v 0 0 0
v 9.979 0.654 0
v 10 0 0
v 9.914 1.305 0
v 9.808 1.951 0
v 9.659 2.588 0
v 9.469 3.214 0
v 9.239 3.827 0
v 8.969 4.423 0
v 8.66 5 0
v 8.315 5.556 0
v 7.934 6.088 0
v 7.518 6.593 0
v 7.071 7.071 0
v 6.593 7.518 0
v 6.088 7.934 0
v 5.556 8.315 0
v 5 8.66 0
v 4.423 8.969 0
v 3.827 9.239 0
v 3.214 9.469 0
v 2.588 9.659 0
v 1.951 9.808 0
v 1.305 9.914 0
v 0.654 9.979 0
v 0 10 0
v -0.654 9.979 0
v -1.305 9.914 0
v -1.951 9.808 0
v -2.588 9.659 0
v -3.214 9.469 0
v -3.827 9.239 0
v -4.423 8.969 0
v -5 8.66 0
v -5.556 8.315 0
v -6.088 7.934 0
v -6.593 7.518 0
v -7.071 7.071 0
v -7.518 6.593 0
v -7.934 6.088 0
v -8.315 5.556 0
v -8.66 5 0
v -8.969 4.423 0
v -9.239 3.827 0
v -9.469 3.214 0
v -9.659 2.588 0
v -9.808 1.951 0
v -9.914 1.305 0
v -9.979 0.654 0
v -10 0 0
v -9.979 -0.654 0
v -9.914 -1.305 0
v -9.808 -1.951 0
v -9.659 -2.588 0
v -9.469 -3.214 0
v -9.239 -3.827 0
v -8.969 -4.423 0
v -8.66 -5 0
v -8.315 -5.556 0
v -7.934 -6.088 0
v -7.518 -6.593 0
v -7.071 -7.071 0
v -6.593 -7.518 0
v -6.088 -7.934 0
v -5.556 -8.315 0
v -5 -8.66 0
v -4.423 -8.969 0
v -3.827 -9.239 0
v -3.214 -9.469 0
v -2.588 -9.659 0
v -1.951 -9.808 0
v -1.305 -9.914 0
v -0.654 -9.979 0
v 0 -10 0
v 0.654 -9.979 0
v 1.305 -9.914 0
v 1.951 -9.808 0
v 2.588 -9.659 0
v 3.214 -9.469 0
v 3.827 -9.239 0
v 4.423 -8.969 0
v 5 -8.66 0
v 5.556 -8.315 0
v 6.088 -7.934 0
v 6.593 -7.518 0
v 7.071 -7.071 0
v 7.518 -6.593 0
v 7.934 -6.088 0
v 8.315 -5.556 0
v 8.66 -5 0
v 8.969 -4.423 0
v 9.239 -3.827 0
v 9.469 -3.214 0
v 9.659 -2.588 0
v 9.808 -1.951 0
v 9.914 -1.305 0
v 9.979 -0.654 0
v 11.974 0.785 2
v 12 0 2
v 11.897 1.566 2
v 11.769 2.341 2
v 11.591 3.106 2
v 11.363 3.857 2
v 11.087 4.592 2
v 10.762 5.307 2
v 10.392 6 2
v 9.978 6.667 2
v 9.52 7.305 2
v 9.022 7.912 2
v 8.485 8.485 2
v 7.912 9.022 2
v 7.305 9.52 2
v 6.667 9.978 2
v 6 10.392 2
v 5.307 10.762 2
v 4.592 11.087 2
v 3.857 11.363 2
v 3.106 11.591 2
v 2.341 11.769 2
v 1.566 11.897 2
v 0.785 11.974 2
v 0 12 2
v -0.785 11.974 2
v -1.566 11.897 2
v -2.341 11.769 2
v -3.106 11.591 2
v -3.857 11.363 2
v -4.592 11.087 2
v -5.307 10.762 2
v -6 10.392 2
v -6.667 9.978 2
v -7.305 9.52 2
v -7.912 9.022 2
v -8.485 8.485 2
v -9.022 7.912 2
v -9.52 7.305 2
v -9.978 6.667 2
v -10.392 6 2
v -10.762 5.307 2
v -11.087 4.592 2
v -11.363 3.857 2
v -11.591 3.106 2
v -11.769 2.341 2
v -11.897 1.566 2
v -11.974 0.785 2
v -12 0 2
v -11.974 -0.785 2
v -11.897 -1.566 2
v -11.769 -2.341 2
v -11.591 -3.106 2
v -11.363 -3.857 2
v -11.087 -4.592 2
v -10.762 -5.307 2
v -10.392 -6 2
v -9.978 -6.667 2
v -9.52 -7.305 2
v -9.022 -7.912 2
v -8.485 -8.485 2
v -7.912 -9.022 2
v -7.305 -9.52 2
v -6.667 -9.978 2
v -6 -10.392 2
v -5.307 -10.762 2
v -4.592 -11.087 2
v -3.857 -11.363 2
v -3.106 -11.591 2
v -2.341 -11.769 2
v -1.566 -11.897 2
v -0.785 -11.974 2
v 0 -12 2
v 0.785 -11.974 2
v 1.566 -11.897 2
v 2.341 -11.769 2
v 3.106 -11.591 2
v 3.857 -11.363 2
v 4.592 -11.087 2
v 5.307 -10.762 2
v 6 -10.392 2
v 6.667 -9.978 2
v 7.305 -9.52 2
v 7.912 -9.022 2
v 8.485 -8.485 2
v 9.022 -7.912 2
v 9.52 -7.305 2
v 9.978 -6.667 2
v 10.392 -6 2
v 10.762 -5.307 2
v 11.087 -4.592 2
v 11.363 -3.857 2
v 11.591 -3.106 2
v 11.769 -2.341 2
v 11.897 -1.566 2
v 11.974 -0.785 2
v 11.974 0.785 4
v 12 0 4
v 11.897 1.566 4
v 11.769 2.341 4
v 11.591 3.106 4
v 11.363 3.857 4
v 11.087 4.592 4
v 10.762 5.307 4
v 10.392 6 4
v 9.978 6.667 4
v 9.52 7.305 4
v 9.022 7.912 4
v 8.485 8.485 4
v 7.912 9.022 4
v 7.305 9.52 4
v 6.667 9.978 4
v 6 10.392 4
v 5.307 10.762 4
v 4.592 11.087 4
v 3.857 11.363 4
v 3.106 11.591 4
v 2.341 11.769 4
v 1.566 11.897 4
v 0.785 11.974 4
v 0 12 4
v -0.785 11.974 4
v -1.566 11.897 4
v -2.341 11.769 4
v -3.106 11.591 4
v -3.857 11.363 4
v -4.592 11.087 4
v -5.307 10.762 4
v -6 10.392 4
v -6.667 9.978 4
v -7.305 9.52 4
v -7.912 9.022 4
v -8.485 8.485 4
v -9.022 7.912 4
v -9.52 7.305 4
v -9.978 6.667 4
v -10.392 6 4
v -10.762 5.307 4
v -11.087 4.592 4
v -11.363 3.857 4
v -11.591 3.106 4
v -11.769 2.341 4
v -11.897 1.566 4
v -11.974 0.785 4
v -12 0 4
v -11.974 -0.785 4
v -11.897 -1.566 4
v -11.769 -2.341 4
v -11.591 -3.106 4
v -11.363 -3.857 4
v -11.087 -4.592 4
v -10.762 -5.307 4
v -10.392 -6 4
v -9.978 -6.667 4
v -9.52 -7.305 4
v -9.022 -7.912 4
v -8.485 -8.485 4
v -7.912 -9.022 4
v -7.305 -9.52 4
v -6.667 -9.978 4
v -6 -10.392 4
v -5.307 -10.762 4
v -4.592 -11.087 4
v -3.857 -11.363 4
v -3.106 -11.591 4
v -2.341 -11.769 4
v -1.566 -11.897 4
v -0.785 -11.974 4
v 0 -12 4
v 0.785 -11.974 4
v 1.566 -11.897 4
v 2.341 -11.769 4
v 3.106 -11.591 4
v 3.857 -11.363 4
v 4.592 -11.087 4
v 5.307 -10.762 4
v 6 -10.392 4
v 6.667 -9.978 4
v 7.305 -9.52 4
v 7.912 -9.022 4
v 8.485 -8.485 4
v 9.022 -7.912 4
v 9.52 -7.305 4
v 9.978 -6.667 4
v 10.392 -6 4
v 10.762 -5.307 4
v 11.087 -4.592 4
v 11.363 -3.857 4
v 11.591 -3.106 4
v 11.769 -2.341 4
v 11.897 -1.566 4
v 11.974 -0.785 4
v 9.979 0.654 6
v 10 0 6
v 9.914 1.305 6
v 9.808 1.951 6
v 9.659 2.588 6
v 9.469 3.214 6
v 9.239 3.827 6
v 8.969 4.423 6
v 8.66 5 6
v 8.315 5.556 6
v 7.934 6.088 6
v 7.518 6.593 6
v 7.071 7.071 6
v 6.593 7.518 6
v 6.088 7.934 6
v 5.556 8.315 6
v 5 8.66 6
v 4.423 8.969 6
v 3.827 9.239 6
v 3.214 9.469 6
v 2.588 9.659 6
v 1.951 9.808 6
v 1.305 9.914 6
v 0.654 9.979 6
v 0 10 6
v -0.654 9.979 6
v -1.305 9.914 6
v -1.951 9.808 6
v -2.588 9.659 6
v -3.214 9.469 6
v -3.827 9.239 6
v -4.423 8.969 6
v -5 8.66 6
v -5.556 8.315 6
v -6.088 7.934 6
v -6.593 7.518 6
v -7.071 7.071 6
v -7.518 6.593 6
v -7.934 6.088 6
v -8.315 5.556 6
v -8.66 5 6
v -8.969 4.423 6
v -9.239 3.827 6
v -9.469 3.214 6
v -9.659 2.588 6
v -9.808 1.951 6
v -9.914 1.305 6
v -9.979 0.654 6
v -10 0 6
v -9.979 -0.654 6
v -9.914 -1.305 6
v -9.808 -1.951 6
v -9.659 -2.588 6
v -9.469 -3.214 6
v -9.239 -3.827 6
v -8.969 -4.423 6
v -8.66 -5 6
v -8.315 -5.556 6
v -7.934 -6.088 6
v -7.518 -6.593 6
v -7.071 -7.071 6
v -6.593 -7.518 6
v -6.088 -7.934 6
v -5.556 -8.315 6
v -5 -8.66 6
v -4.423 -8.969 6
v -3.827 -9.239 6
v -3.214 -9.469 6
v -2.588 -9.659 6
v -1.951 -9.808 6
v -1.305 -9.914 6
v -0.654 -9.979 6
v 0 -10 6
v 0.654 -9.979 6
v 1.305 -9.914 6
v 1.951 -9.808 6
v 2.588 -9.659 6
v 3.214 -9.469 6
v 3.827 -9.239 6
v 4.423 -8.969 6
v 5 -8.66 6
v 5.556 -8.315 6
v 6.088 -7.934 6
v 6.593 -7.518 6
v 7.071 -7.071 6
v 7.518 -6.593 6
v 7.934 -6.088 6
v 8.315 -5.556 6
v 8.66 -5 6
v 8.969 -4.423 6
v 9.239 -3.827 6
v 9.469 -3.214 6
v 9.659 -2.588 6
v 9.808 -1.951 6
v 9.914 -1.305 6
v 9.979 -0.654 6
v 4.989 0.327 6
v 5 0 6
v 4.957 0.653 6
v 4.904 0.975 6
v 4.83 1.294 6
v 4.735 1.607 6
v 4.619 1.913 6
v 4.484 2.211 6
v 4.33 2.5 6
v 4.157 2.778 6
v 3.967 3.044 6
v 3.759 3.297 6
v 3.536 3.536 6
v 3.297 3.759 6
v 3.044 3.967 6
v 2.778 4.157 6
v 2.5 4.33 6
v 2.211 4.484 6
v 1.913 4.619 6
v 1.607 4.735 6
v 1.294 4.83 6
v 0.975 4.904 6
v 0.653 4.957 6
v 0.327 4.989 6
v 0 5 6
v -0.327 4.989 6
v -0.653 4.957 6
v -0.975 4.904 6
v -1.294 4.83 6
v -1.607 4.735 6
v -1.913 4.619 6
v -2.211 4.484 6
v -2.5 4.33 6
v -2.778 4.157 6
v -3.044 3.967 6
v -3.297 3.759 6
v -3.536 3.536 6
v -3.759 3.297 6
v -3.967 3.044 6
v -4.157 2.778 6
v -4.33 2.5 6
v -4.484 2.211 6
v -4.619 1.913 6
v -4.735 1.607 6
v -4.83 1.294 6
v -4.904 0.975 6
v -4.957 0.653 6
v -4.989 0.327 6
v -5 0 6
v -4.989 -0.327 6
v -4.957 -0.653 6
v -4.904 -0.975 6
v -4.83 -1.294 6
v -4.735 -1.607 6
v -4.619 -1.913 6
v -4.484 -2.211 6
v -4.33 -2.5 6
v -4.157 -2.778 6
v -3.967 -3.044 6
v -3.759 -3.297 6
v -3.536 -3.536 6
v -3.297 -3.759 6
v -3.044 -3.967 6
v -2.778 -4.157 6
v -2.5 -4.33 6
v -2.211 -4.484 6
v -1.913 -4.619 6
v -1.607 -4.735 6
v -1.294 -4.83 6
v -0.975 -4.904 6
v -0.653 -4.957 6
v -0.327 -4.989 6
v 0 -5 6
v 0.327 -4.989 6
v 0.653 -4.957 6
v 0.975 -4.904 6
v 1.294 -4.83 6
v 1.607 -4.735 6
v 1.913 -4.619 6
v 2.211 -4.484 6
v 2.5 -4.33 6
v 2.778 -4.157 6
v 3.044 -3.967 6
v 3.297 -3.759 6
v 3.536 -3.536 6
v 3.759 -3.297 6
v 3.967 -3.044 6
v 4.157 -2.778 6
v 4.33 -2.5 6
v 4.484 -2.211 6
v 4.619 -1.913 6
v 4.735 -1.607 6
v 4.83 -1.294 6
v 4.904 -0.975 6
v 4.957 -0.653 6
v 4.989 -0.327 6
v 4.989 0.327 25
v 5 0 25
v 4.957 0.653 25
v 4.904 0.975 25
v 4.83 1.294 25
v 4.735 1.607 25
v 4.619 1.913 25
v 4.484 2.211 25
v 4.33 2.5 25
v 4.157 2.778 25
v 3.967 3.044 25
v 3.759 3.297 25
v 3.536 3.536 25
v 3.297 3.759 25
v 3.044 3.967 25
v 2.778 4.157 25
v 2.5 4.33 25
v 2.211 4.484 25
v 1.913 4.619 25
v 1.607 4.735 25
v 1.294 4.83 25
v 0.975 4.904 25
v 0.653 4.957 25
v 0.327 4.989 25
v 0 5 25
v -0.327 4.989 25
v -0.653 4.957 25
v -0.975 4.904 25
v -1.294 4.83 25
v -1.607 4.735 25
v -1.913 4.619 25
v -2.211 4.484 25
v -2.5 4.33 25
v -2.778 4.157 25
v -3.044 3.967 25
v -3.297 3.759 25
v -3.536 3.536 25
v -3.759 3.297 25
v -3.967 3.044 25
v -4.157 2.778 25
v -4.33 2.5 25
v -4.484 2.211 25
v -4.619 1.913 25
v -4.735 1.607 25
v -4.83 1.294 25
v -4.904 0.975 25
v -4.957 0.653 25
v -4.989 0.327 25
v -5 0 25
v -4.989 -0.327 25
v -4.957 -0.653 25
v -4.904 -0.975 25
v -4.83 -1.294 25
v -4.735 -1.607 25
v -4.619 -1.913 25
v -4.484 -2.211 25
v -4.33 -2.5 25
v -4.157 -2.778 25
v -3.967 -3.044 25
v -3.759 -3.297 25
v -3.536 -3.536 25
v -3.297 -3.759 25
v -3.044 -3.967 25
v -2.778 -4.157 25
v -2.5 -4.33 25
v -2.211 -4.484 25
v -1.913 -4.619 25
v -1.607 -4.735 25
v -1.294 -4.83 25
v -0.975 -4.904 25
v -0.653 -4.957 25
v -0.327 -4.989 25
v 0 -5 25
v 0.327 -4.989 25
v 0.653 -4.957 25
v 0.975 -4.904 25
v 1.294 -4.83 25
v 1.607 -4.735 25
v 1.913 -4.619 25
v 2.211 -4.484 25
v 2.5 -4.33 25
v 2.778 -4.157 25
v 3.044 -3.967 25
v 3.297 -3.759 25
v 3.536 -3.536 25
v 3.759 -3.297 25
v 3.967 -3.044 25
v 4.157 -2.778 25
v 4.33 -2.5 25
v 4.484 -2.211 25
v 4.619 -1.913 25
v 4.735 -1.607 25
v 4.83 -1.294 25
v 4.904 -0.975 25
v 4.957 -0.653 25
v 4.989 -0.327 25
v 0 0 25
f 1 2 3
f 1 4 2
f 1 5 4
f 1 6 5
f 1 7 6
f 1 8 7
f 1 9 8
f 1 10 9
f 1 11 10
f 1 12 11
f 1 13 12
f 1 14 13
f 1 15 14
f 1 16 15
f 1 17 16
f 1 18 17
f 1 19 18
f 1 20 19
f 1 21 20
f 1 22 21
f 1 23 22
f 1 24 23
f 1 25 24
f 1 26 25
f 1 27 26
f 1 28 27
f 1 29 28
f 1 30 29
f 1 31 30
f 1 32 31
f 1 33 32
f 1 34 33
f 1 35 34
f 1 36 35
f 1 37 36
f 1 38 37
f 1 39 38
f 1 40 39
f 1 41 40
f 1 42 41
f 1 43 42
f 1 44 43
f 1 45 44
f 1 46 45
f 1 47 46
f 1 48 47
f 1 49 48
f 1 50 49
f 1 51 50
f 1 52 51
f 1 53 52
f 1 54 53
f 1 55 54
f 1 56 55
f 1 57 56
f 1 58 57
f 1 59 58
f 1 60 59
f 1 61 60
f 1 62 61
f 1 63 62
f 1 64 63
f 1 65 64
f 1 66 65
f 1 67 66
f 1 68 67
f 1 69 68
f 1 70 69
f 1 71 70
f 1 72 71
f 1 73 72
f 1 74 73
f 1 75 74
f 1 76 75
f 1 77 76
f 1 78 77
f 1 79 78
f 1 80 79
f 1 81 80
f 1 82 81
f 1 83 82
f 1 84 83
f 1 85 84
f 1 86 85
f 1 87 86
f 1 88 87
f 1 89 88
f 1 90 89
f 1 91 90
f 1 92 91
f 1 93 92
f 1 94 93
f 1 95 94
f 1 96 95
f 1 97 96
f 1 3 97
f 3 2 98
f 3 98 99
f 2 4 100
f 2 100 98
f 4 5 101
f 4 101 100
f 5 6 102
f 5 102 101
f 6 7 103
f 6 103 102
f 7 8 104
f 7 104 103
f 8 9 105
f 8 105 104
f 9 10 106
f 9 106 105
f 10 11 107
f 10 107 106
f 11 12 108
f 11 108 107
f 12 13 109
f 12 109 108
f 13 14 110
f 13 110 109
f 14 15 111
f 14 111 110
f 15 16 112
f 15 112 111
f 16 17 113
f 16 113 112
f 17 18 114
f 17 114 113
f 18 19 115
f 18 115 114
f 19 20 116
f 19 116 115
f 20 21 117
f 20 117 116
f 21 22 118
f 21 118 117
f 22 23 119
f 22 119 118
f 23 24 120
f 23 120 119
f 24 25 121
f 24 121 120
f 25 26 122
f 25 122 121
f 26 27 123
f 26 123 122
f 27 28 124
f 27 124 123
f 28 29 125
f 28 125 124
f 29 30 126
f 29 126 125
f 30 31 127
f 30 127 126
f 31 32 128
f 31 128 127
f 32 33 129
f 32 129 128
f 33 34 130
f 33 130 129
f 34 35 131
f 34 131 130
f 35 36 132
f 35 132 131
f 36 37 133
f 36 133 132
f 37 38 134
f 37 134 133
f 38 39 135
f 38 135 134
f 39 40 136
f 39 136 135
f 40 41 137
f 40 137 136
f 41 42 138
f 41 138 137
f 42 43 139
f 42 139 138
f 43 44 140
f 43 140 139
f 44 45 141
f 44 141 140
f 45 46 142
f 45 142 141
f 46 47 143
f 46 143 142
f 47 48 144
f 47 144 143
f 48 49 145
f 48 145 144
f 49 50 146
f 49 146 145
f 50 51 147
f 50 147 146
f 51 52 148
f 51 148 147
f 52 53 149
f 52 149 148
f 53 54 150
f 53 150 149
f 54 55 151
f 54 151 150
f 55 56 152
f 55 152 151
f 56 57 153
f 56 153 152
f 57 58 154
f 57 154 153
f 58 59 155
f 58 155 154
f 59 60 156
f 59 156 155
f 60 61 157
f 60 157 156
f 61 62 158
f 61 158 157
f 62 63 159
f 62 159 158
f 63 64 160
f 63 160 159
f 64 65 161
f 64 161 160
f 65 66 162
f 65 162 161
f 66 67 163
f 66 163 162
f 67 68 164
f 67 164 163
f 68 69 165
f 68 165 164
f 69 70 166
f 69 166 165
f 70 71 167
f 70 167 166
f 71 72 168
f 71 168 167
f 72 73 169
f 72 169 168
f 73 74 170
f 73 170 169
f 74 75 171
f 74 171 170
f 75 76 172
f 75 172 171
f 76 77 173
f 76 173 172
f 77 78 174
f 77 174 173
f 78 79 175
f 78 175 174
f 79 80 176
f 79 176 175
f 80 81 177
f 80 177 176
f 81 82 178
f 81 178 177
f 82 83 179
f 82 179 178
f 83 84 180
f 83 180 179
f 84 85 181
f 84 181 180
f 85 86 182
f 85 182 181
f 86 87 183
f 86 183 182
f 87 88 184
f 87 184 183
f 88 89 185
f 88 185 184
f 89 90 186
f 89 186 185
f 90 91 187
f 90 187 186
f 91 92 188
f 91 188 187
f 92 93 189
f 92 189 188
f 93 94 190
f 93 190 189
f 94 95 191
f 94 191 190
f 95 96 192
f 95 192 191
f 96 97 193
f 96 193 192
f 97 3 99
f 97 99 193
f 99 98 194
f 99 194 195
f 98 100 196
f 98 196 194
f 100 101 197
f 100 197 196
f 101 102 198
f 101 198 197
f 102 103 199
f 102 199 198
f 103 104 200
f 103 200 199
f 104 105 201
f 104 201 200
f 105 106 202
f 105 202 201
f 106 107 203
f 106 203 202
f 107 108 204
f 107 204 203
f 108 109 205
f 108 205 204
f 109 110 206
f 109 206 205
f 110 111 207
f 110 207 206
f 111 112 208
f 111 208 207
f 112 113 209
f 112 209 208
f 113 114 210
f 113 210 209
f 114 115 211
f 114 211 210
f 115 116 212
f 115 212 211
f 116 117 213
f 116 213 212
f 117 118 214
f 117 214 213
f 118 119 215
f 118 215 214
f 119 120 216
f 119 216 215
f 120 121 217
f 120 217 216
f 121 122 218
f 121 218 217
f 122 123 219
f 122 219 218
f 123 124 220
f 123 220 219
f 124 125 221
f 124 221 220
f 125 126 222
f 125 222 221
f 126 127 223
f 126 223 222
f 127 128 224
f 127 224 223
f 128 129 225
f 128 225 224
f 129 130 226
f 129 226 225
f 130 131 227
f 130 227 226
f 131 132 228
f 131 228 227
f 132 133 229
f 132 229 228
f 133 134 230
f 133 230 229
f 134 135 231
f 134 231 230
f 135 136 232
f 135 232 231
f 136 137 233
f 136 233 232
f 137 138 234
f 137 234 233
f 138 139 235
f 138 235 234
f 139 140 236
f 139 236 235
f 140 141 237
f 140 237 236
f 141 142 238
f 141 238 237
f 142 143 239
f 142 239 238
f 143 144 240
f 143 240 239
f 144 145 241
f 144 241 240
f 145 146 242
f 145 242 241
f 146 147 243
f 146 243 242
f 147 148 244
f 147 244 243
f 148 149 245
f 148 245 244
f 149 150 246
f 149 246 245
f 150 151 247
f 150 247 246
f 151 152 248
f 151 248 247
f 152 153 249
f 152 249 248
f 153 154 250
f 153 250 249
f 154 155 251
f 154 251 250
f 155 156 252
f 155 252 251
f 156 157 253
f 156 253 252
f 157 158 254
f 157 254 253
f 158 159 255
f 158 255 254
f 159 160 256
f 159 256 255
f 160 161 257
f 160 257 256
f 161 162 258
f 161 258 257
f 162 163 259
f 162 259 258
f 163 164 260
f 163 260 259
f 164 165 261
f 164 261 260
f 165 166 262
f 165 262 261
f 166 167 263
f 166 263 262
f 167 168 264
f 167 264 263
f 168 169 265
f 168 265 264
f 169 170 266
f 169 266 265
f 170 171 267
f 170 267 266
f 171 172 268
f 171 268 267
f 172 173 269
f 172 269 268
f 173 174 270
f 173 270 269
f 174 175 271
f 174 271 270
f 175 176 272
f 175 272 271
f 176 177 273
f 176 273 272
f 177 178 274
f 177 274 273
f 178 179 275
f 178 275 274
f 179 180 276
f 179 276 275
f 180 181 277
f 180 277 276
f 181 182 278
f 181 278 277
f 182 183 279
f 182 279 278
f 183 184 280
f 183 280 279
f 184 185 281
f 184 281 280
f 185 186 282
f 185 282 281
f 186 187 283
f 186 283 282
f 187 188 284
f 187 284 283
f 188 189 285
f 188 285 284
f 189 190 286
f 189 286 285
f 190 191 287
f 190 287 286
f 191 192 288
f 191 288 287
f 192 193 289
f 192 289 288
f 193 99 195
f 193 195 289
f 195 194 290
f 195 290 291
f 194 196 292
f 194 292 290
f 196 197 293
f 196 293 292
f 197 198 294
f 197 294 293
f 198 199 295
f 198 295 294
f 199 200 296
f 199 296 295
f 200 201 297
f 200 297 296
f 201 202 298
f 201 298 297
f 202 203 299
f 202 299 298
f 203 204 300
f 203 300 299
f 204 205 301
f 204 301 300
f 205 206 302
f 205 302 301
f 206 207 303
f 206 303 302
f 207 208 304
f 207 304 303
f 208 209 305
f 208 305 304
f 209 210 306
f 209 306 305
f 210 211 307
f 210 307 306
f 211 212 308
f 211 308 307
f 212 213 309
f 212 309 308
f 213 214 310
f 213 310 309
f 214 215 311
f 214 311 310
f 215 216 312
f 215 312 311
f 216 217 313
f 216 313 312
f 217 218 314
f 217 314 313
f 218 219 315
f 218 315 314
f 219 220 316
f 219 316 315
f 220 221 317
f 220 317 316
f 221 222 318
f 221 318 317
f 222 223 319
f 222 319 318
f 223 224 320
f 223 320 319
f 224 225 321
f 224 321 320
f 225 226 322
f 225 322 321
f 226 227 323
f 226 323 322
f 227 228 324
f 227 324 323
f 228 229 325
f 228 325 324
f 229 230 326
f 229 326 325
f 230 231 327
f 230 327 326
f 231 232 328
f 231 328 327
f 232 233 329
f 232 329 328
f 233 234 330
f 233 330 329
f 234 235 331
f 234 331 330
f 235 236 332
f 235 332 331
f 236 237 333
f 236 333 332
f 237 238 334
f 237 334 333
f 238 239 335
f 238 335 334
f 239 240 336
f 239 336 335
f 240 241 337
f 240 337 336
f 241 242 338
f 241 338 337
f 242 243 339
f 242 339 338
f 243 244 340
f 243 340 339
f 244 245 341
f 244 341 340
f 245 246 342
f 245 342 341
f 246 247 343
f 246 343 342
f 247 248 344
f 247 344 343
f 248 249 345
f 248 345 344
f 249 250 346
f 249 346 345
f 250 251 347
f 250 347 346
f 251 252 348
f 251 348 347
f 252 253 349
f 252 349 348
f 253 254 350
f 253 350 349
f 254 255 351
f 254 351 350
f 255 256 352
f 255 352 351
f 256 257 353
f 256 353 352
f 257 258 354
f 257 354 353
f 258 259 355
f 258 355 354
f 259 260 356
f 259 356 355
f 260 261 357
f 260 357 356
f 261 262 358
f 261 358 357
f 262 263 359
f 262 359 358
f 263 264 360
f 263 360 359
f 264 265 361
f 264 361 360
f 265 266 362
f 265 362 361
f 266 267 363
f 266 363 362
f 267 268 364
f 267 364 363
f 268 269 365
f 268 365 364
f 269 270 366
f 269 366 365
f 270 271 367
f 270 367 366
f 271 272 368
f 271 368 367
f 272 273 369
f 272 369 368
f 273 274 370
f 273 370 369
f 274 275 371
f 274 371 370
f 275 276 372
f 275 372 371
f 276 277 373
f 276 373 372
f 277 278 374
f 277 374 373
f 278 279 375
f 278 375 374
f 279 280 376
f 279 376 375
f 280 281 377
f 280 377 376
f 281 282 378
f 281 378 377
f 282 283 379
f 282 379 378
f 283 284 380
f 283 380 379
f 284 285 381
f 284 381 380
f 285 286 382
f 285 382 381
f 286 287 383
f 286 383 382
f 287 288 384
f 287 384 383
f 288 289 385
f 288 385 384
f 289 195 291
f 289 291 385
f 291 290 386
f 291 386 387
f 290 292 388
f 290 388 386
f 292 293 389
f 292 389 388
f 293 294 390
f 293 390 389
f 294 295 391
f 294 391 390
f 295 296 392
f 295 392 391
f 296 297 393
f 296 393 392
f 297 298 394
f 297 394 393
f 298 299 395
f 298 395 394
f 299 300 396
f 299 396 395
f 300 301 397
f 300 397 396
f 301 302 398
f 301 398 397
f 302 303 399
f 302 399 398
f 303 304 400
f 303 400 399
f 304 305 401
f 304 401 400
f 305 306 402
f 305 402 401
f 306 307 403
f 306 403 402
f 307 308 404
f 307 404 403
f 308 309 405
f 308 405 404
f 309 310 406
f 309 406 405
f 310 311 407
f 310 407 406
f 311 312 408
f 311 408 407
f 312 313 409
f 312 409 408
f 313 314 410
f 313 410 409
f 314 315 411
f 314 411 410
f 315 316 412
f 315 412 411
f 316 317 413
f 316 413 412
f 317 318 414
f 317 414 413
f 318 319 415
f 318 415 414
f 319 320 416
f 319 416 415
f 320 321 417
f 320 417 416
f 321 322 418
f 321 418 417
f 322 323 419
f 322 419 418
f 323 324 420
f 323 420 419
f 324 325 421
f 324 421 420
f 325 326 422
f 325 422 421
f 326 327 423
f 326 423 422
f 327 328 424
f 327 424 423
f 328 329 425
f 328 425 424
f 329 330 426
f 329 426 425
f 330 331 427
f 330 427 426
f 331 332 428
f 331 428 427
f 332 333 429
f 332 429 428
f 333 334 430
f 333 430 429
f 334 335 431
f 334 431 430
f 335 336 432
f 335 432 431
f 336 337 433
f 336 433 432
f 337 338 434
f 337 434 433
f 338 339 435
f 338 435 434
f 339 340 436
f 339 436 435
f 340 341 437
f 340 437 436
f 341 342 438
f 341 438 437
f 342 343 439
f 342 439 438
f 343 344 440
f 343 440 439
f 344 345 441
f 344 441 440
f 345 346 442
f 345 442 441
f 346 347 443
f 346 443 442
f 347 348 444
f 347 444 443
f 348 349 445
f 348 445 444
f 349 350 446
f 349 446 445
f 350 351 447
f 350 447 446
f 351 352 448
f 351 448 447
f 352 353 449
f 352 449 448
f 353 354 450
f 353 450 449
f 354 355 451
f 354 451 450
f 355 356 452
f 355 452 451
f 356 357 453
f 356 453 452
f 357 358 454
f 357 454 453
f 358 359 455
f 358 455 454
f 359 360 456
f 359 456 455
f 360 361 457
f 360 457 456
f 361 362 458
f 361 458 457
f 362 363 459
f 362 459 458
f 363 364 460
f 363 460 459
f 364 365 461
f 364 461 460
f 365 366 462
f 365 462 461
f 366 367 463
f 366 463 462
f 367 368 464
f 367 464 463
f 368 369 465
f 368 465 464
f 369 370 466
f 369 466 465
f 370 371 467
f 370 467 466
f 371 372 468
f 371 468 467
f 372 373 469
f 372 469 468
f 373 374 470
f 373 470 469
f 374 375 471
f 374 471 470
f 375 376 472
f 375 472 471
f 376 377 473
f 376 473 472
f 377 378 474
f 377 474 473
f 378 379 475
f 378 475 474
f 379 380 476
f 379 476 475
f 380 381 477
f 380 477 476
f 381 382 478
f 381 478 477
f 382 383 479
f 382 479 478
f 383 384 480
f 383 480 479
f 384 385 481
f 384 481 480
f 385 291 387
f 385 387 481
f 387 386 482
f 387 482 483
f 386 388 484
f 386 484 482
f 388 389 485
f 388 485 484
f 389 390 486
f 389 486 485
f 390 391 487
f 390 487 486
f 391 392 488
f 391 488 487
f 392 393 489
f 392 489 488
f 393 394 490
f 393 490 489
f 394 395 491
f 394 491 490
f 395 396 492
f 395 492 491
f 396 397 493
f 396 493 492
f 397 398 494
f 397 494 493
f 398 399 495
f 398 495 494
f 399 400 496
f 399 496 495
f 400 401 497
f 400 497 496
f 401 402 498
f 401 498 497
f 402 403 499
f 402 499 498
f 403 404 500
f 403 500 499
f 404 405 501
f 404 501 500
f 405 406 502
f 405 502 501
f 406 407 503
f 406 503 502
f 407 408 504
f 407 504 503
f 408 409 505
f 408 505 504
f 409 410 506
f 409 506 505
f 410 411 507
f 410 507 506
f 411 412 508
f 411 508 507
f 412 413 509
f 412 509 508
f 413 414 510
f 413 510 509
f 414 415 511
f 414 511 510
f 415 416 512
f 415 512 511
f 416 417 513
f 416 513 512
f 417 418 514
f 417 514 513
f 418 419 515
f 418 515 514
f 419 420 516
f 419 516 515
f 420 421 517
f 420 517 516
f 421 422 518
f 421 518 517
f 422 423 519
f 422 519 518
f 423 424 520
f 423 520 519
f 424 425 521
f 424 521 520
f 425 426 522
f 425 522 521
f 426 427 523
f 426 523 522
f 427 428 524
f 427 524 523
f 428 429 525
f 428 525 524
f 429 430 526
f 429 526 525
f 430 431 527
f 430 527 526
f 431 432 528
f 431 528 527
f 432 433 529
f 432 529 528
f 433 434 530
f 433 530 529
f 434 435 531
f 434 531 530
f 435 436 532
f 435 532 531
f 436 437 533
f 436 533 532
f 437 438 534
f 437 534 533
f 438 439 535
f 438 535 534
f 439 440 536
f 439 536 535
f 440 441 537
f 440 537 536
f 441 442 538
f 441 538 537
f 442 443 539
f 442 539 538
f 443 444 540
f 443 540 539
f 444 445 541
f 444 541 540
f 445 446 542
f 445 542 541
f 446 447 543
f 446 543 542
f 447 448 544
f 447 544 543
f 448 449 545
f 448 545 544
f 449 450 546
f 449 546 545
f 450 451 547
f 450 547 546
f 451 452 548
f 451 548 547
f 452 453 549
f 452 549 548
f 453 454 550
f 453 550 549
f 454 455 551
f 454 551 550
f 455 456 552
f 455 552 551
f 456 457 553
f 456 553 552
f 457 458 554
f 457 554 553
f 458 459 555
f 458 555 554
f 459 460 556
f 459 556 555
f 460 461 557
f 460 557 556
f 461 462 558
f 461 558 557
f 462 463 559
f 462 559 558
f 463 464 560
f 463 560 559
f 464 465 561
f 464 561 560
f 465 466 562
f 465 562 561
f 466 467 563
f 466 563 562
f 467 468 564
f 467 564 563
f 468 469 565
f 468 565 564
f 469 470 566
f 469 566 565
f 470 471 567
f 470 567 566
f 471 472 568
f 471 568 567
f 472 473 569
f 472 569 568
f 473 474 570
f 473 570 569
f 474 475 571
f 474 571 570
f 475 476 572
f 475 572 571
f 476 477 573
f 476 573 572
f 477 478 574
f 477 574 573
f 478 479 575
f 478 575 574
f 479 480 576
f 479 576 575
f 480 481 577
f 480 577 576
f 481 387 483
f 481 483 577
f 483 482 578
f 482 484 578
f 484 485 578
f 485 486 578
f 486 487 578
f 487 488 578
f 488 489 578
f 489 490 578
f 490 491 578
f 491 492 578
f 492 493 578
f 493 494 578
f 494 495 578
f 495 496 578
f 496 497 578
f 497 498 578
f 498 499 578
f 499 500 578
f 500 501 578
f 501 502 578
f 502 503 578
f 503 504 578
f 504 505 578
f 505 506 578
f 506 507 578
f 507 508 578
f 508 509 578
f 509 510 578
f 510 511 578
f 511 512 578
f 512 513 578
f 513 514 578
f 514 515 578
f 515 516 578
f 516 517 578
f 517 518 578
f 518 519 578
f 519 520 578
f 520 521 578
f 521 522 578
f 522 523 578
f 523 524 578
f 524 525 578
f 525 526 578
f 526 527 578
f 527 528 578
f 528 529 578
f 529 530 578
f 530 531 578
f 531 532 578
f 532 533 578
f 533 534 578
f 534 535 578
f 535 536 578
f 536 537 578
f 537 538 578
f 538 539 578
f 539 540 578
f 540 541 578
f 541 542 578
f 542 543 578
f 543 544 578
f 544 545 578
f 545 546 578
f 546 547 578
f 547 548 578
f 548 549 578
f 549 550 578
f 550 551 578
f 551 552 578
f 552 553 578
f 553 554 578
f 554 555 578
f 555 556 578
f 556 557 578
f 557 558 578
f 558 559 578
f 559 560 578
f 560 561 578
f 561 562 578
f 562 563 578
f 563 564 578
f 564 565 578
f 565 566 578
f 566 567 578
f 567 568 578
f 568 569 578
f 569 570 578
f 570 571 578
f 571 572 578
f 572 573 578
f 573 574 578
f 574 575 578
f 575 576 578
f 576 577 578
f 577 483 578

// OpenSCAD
// Original MechIntel educational model. CC0-1.0. Units: mm.
// Not a standardized or load-rated component.
$fn=96;
// Section points: [radius, height], mm. Edit to change the profile.
section=[[0, 0], [10, 0], [12, 2], [12, 4], [10, 6], [5, 6], [5, 25], [0, 25]];
rotate_extrude($fn=96) polygon(points=section);
